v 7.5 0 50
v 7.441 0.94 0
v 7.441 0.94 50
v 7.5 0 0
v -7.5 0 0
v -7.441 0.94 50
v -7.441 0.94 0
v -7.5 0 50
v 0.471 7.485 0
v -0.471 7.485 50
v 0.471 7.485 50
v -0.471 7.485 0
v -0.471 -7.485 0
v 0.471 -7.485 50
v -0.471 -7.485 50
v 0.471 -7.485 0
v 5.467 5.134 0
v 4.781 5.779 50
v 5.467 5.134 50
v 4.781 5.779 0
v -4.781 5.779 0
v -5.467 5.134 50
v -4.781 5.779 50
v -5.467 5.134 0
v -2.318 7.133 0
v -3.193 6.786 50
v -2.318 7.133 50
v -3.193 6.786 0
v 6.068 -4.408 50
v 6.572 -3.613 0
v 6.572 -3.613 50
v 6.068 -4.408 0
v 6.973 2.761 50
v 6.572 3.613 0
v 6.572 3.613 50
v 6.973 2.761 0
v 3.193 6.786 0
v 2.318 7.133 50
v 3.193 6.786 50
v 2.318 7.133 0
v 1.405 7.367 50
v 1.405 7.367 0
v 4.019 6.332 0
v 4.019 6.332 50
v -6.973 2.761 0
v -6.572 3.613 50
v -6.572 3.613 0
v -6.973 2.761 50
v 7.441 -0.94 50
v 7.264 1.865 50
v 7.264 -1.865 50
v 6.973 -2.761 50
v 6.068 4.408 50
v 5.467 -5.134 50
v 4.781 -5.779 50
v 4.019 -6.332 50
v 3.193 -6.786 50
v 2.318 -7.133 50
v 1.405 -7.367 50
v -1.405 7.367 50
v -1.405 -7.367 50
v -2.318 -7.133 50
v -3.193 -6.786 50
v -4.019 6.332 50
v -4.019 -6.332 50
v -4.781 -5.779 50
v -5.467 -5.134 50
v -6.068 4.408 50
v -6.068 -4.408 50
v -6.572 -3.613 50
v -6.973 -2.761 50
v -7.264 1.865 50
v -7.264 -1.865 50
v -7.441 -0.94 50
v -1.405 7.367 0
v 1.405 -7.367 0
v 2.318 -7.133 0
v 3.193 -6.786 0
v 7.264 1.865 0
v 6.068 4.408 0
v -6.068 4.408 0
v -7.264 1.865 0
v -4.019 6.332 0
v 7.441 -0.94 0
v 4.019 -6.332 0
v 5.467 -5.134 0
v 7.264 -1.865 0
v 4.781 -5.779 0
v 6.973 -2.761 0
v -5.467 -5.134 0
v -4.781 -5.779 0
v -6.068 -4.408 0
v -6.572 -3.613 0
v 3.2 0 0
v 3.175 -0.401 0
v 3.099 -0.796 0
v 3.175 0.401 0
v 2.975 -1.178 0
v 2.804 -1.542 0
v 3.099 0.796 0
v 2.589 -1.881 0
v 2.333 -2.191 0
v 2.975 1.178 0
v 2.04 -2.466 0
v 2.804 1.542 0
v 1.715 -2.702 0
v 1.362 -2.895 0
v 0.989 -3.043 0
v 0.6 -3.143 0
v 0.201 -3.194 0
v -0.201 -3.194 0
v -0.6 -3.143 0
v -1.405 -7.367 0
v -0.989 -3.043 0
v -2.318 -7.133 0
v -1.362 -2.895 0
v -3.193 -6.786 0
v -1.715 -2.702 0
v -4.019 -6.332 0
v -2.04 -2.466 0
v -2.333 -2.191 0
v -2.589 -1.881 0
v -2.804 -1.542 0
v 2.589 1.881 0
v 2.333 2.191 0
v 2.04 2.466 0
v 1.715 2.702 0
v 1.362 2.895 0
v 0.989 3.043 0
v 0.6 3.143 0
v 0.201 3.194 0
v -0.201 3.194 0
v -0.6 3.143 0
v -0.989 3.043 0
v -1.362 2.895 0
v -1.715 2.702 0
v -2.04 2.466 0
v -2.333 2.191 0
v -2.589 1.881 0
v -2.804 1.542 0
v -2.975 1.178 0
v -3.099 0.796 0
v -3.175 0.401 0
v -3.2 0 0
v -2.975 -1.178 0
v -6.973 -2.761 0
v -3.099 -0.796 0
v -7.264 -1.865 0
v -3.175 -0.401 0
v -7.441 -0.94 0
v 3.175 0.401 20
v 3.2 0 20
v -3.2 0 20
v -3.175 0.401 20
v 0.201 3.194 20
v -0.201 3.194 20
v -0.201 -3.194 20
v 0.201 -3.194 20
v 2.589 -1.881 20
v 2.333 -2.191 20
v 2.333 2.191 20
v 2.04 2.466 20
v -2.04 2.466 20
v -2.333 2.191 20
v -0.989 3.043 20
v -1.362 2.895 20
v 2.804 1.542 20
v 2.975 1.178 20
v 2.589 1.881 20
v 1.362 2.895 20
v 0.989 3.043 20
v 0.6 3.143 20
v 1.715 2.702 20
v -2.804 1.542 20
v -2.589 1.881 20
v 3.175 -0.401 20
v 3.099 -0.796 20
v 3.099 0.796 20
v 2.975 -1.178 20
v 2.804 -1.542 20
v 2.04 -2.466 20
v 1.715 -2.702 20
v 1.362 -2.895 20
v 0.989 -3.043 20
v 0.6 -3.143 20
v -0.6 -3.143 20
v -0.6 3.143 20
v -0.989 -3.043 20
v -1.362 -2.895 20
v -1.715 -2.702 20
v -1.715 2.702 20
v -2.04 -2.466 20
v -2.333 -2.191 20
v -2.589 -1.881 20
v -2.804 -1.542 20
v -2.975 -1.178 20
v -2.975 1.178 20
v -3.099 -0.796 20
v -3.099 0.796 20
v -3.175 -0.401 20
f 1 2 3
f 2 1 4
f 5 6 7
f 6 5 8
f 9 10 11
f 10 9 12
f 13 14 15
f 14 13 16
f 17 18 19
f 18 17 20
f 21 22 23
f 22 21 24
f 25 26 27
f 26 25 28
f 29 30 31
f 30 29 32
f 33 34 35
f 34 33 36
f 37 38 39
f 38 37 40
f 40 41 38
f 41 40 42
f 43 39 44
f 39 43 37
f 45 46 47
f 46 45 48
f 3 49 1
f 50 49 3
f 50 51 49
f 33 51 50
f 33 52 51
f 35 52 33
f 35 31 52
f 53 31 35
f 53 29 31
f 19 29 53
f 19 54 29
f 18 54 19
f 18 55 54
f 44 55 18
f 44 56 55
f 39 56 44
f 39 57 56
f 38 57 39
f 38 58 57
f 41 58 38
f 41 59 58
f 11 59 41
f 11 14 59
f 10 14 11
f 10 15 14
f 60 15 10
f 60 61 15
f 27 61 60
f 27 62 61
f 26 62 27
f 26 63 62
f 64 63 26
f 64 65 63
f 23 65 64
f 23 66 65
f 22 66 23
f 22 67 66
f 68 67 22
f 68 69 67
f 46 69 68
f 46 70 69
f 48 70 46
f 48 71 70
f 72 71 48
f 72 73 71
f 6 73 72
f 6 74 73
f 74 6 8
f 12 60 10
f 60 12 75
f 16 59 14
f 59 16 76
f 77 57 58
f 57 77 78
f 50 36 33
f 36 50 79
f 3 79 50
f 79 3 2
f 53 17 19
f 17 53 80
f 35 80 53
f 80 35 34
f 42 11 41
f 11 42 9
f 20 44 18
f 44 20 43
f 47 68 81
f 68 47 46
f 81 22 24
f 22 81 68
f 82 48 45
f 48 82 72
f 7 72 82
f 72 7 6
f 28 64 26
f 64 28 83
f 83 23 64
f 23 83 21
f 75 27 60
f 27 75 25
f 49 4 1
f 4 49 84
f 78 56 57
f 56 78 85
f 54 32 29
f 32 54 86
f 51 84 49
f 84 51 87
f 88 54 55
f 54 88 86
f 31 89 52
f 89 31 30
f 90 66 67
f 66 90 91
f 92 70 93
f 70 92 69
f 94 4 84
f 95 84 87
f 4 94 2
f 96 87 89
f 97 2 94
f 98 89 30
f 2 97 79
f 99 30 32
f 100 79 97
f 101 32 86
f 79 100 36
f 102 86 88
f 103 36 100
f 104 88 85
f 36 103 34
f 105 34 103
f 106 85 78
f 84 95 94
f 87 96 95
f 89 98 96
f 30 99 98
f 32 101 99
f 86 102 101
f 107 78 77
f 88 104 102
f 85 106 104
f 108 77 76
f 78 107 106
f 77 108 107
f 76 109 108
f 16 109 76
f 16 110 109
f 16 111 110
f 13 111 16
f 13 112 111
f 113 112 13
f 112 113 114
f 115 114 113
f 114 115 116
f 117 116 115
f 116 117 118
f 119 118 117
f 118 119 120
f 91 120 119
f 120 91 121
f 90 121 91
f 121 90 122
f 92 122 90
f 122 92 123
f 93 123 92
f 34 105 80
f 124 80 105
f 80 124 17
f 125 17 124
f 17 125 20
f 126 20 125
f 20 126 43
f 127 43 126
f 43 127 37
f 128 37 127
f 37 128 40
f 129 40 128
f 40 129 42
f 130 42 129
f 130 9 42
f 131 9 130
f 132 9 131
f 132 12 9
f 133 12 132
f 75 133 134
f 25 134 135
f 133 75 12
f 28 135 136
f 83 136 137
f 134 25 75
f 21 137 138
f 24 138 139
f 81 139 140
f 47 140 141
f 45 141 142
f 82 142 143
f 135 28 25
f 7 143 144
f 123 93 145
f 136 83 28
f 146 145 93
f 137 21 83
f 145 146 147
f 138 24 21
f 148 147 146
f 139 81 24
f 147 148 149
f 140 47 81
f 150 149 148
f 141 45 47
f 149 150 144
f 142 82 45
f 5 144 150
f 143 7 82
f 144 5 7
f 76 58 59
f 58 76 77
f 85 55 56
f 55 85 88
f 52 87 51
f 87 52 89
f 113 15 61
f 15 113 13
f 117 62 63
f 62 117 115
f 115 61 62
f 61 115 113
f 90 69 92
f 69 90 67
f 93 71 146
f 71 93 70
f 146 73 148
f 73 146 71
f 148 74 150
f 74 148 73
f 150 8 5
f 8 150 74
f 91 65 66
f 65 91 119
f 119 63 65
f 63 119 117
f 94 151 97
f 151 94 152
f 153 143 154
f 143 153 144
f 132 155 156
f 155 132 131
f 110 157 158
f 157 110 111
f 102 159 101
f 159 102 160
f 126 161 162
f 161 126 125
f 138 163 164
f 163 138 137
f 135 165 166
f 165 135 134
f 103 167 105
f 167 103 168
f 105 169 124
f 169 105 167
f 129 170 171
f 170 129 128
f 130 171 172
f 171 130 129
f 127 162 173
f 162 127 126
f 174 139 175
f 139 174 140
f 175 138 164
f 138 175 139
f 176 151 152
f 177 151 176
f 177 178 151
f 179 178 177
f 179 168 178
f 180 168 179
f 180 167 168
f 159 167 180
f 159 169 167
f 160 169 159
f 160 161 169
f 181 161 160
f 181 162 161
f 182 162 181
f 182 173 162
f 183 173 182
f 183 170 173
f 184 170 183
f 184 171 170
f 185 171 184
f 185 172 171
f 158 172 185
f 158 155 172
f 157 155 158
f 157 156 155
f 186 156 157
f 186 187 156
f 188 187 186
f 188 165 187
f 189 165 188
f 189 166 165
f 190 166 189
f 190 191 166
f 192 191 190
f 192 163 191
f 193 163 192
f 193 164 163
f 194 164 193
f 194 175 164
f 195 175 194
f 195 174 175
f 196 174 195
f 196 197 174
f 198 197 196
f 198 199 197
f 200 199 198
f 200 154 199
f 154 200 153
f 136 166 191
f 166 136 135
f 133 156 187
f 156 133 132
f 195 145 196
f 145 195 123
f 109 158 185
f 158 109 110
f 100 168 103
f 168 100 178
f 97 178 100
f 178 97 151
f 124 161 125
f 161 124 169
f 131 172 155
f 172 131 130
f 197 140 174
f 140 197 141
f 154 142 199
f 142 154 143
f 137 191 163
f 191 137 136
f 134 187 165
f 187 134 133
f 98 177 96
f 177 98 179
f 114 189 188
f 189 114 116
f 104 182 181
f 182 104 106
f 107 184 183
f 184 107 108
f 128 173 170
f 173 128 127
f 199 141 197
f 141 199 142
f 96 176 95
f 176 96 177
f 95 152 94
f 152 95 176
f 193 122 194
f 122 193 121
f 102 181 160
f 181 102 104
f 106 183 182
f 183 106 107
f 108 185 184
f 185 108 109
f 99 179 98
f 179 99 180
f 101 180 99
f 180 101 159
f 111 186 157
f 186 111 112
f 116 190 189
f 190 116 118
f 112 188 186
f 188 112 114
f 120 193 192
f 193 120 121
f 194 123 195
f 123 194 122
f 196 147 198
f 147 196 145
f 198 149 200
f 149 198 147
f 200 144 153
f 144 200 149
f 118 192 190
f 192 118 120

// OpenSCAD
$fn = 50;


difference() {
	union() {
		translate(v = [0, 0, 0]) {
			rotate(a = [0, 0, 0]) {
				cylinder(h = 50, r = 7.5000000000);
			}
		}
	}
	union() {
		translate(v = [0, 0, 0]) {
			rotate(a = [0, 0, 0]) {
				cylinder(h = 20, r = 3.2000000000);
			}
		}
	}
}
